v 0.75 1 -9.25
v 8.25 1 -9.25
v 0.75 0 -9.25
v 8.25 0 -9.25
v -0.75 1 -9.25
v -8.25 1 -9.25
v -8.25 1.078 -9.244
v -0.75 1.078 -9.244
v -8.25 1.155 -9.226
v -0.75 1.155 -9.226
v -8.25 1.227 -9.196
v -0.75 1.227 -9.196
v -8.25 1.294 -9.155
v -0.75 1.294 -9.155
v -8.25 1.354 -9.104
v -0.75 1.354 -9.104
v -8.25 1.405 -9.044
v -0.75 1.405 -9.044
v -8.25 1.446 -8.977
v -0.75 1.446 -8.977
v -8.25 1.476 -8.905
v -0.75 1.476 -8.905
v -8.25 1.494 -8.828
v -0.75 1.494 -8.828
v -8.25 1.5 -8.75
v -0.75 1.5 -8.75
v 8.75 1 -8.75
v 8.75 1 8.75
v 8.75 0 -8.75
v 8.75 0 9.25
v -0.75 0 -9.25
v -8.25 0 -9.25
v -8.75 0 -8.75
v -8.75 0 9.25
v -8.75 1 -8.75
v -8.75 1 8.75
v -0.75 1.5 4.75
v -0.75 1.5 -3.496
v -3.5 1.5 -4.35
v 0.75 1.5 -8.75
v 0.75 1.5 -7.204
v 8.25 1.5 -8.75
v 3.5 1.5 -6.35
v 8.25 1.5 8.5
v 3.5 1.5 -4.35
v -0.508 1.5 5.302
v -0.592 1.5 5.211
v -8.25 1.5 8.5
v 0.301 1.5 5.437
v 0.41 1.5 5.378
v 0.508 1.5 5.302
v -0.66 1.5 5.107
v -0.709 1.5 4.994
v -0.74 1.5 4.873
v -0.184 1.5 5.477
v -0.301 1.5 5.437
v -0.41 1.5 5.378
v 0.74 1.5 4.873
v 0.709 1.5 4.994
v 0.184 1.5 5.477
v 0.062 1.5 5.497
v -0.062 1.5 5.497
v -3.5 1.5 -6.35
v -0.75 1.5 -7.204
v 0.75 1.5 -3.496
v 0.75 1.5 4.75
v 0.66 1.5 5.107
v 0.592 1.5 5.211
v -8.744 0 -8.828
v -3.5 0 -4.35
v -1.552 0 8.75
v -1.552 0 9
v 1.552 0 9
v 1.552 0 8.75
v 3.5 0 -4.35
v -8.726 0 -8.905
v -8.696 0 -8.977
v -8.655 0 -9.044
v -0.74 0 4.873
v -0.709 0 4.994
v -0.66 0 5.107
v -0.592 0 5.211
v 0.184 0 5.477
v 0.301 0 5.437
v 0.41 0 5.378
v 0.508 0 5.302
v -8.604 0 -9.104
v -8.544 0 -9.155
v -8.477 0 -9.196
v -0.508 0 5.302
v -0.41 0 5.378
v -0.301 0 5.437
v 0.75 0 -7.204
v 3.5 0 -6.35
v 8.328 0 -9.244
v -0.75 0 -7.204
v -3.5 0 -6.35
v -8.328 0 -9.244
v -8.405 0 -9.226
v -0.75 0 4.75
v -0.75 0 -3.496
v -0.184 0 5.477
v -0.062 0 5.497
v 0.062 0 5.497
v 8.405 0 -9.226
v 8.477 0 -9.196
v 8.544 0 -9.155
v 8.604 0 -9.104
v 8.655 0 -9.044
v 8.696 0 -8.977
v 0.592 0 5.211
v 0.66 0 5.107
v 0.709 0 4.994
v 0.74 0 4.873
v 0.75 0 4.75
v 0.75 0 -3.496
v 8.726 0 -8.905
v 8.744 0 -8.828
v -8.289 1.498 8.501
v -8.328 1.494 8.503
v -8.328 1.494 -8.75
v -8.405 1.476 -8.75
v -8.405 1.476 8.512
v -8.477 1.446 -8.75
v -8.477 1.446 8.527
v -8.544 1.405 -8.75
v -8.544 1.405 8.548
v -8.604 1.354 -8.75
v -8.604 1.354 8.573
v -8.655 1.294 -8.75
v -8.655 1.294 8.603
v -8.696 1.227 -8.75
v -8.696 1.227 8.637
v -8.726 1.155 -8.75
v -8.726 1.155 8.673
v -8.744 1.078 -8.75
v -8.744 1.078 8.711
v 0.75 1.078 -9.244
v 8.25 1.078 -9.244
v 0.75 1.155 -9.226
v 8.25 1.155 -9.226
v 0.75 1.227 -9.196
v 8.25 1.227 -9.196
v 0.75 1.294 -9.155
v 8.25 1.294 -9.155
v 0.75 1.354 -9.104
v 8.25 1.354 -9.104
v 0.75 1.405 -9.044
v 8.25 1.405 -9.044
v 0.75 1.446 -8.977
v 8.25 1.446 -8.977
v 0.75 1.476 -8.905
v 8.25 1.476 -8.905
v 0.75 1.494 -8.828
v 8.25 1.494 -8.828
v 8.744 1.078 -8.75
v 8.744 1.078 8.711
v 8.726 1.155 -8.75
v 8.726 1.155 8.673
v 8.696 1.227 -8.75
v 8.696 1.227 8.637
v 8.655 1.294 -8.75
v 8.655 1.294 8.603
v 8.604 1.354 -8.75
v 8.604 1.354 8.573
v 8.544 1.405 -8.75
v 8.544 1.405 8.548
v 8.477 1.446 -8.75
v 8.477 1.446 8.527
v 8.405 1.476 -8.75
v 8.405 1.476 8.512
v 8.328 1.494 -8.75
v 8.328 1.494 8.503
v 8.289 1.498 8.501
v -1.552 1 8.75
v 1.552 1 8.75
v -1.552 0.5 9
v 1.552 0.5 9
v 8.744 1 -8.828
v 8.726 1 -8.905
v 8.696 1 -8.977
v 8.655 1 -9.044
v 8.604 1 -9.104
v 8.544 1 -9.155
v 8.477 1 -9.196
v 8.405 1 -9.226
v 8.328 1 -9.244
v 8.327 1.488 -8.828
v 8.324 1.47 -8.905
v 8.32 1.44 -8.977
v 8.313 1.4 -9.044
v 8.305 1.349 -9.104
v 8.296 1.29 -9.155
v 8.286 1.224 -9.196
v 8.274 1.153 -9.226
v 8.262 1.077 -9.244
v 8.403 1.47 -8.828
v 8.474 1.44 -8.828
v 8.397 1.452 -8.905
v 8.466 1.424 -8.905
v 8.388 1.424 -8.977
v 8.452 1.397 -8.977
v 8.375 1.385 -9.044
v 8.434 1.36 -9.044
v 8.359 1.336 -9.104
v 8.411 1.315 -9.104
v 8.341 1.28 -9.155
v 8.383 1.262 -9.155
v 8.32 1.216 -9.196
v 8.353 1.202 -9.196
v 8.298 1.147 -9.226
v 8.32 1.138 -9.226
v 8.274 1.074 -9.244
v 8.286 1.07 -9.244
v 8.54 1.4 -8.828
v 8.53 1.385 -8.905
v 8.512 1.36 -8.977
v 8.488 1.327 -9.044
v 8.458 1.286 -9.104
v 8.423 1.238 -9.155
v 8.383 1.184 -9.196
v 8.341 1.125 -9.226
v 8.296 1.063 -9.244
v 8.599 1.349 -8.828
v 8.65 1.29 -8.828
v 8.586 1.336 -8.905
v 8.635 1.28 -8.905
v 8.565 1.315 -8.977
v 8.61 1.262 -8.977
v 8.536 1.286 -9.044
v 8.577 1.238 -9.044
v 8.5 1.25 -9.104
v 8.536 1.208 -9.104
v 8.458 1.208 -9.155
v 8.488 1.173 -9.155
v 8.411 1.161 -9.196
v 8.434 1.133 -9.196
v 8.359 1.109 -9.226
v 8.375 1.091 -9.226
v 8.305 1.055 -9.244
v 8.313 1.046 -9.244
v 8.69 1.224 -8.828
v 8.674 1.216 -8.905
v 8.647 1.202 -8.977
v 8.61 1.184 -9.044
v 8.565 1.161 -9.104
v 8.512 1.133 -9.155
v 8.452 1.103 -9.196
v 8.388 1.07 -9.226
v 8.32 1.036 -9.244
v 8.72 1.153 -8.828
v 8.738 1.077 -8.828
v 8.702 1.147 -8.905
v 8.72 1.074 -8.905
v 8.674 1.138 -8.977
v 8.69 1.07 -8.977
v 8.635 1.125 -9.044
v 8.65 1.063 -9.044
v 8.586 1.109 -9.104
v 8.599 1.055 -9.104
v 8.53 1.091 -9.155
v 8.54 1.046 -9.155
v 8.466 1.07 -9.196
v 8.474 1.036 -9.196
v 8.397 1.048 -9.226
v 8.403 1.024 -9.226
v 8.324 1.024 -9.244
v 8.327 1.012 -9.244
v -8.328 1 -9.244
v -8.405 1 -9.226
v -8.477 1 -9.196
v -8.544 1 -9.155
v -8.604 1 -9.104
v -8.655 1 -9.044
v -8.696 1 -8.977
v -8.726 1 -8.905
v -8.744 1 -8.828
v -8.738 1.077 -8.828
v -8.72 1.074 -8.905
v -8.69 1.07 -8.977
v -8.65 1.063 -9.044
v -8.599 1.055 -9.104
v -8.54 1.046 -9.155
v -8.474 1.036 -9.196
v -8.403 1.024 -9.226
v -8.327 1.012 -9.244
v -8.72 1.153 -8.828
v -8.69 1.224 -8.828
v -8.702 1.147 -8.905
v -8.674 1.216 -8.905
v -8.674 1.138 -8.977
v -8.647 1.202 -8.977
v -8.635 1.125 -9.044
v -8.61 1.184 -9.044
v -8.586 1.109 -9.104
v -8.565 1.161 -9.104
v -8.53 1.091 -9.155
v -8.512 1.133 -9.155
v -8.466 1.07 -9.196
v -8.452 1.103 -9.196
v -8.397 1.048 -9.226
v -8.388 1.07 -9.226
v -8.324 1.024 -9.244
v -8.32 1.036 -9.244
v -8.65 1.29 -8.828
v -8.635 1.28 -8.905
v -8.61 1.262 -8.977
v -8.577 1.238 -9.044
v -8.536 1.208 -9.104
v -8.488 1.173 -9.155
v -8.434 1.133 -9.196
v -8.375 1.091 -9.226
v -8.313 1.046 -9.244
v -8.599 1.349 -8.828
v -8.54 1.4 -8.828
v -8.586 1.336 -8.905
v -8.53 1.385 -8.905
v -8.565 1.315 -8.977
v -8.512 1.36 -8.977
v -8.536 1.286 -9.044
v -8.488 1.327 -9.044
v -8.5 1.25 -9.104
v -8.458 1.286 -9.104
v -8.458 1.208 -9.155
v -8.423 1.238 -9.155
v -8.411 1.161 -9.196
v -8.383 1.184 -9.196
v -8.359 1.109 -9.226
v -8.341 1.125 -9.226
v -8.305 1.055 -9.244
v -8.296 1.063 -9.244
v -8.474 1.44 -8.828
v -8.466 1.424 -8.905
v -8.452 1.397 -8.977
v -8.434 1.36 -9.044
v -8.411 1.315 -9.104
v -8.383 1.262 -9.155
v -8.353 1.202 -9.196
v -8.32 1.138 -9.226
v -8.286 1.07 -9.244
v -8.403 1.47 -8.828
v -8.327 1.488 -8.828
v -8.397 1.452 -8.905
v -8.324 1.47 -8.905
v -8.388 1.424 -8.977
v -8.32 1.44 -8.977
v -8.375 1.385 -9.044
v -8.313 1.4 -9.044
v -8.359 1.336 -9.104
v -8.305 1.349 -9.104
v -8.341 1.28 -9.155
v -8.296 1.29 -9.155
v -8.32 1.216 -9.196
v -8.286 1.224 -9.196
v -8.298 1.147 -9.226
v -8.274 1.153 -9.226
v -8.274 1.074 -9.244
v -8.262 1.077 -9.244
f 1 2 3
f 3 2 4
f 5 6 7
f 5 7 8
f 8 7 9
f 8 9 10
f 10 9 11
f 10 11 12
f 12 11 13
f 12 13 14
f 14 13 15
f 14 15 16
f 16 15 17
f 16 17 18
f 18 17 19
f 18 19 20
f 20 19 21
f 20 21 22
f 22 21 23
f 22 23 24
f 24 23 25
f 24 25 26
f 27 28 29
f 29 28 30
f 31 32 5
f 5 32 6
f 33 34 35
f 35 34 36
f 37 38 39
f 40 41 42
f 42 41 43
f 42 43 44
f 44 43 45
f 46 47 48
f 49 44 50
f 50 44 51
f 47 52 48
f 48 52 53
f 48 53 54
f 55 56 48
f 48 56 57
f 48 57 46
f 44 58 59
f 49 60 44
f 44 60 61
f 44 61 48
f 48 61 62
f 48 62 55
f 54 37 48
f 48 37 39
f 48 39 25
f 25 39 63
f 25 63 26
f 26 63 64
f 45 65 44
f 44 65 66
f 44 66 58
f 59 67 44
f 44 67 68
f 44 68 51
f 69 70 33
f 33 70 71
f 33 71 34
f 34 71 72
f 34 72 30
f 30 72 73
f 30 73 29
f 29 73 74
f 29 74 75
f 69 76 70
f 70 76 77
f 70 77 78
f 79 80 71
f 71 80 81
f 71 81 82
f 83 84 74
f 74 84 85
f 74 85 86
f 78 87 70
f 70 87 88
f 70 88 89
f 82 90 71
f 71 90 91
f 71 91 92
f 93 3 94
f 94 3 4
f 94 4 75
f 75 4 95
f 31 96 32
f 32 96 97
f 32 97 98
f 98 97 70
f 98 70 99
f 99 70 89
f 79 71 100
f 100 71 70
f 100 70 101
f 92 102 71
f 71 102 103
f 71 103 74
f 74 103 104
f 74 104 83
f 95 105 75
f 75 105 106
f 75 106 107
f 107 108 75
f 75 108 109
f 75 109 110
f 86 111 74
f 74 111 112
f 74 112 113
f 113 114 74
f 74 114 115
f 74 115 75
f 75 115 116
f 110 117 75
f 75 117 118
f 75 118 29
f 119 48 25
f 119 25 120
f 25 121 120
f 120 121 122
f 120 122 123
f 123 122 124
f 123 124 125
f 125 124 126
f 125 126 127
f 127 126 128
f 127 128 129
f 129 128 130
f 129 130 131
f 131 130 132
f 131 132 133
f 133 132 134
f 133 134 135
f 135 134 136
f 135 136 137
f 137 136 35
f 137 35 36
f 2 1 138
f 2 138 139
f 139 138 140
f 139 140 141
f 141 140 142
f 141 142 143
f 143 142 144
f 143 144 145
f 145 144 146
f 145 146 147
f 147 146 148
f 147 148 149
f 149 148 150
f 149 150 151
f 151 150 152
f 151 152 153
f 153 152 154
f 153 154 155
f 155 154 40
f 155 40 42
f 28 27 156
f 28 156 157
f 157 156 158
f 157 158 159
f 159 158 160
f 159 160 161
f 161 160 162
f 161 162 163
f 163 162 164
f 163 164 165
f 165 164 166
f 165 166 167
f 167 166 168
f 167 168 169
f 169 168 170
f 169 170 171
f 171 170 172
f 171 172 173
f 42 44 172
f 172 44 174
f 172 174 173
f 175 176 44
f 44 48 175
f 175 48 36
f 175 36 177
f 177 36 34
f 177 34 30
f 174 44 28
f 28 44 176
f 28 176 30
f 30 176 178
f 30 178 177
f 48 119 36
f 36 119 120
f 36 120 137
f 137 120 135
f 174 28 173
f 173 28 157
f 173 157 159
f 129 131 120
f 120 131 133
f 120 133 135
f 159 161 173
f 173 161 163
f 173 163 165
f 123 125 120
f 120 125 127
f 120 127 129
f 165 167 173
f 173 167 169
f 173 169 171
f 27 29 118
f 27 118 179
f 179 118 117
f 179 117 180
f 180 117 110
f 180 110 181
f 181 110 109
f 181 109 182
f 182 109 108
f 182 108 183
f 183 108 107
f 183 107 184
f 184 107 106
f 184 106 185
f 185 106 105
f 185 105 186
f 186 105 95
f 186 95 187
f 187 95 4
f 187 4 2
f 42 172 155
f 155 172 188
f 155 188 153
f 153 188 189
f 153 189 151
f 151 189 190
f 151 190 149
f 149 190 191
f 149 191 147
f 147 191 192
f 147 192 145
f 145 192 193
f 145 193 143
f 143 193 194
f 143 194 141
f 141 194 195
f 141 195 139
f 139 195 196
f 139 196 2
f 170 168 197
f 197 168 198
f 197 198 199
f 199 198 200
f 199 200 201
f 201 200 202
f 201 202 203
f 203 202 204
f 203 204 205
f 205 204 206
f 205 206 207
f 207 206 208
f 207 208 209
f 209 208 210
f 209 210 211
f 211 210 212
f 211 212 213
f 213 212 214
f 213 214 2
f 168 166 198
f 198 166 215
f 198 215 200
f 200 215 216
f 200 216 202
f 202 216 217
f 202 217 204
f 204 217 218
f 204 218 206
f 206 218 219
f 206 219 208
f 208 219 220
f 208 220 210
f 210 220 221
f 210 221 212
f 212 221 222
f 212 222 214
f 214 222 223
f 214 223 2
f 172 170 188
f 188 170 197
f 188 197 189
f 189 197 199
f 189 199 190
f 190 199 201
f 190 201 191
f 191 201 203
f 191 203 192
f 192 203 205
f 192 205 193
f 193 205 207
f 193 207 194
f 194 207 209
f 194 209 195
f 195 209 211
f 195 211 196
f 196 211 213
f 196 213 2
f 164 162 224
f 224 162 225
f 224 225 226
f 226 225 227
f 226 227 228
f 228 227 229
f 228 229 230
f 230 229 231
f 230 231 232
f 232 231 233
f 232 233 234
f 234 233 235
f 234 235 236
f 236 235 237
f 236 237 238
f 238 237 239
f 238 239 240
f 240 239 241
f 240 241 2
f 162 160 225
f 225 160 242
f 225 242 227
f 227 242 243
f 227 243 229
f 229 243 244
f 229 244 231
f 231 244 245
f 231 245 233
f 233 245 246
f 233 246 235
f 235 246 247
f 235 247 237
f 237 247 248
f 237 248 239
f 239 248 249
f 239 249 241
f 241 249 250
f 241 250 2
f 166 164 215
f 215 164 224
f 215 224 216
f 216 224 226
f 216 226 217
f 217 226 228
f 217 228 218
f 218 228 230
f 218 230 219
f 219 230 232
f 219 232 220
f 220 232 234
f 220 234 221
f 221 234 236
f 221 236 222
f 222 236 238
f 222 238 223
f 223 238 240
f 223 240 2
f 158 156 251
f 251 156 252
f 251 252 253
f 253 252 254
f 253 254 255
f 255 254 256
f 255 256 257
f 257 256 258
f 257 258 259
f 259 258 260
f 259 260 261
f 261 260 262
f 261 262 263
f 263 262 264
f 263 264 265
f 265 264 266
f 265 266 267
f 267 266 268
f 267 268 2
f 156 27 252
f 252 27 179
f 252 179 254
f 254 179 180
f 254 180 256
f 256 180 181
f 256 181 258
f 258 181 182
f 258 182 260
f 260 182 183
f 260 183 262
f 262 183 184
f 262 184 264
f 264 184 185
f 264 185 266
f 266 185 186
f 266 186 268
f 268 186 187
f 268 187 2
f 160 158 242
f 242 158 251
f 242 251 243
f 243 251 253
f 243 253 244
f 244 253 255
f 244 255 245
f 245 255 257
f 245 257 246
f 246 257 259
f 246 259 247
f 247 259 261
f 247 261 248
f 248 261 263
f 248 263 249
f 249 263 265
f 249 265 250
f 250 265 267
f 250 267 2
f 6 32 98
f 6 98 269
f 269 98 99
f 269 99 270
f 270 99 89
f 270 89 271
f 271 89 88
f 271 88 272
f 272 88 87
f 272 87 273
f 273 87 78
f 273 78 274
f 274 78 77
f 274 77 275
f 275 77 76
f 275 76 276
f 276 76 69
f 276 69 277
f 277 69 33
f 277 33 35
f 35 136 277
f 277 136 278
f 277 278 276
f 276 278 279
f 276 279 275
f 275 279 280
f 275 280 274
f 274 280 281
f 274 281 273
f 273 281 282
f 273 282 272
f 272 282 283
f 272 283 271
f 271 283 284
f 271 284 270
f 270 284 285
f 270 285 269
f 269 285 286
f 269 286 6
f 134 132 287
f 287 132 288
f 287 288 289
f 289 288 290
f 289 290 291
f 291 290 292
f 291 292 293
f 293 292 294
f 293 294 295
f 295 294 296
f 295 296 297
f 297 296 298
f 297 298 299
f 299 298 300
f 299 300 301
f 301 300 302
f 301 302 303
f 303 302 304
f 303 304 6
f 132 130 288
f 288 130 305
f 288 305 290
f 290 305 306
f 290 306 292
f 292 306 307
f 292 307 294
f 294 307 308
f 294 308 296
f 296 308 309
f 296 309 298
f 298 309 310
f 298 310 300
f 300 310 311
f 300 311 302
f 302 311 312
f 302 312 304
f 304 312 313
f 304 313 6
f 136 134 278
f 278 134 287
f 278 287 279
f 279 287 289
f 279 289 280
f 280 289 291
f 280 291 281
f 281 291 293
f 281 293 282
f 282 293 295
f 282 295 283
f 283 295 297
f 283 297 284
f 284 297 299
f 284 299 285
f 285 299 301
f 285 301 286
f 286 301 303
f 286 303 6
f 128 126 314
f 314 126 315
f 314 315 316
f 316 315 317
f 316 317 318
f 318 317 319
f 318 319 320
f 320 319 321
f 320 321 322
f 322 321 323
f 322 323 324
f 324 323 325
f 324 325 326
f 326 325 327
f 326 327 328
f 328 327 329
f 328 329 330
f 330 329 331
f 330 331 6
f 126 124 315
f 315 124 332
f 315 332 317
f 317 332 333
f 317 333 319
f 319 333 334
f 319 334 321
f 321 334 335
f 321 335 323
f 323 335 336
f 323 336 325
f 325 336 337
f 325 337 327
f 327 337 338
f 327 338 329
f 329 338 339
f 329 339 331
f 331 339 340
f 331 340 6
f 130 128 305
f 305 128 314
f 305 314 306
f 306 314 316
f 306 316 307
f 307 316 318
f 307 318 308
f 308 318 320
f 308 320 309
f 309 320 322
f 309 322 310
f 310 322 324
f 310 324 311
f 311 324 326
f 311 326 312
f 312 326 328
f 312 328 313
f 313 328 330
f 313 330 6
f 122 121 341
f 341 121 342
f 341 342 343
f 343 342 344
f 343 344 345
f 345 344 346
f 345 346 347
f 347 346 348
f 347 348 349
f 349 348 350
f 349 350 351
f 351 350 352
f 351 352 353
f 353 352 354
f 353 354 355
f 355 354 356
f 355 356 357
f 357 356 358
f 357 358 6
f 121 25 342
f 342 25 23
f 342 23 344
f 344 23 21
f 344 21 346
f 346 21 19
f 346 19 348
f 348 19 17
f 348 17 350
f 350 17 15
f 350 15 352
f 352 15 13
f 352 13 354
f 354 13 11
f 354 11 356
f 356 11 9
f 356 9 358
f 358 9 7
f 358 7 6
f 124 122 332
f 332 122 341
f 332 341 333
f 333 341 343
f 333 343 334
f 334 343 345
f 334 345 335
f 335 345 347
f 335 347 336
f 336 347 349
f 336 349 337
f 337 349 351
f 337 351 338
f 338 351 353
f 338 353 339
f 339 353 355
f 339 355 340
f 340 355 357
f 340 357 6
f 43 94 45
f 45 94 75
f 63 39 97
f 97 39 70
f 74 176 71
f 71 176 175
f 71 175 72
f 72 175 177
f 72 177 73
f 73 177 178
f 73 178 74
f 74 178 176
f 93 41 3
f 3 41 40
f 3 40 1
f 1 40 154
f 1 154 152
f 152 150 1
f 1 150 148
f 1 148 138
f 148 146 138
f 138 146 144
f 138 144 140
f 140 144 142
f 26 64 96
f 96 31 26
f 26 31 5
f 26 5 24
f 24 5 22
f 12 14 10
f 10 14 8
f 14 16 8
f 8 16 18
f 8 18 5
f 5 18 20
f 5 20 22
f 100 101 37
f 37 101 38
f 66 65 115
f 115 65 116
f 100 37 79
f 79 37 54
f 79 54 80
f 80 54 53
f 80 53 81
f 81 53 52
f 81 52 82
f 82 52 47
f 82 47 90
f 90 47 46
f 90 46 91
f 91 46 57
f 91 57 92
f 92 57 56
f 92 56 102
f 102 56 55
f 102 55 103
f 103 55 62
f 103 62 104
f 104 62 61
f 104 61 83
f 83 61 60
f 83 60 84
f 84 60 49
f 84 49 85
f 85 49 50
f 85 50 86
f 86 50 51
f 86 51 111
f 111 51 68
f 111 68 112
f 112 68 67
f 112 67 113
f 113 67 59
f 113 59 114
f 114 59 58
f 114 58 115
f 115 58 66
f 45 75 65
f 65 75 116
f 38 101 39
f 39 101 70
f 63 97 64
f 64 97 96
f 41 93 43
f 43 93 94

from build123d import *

# Parameters (mm, degrees)
SKIZZE1_W                       = 17.5
SKIZZE1_H                       = 18.5
AUFSATZ_LINEAR_AUSTRAGEN1_DEPTH = 1.5
VERRUNDUNG1_R                   = 0.5
SCHNITT_LINEAR_AUSTRAGEN1_REACH = 21.851
VERRUNDUNG2_R                   = 0.5
SCHL_SSELLOCH_DEPTH             = 1.5
SKIZZE6_W                       = 3.103008178
SKIZZE6_H                       = 0.25
GRIFF_DEPTH                     = 1.5
LANGLOCH_ANTENNE_START          = -1.5
LANGLOCH_ANTENNE_DEPTH          = 1.5
SCHNITT_LINEAR_AUSTRAGEN2_DEPTH = 1.5


with BuildPart() as part:
    # Skizze1 → Aufsatz-Linear austragen1 (new body)
    with BuildSketch(Plane(origin=(0, 0, 0), x_dir=(1, 0, 0), z_dir=(0, 1, 0))):
        Rectangle(SKIZZE1_W, SKIZZE1_H)
    extrude(amount=AUFSATZ_LINEAR_AUSTRAGEN1_DEPTH)

    # Verrundung1
    verrundung1_edges = [part.edges().sort_by_distance(p)[0] for p in [
        (-8.75, 1.5, 0),
        (8.75, 1.5, 0),
        (0, 1.5, -9.25),
    ]]
    fillet(verrundung1_edges, radius=VERRUNDUNG1_R)

    # Schnitt-Linear austragen1: up to this face of the body (flat: up to its plane)
    schnitt_linear_austragen1_end = Plane(part.part.faces().sort_by_distance((8.75, 0.5, 0))[0])
    # Skizze2 → Schnitt-Linear austragen1 (cut, up to the picked face)
    with BuildSketch(Plane.ZY.offset(8.75), mode=Mode.PRIVATE) as schnitt_linear_austragen1_sk1:
        Polygon((9.25, 0), (8.5, 1.5), (9.25, 1.5), align=None)
    schnitt_linear_austragen1_tool1 = split(extrude(schnitt_linear_austragen1_sk1.sketch, amount=-SCHNITT_LINEAR_AUSTRAGEN1_REACH, mode=Mode.PRIVATE), bisect_by=schnitt_linear_austragen1_end, keep=Keep.BOTH, mode=Mode.PRIVATE)
    add(schnitt_linear_austragen1_tool1.solids().sort_by(Axis((-8.75, 1, 9), (1, 0, 0)))[0], mode=Mode.SUBTRACT)

    # Verrundung2
    # the kernel refuses this fillet: 0.5 mm, written as the material it takes off along each edge
    with BuildSketch(Plane(origin=(-8.25, 1, -8.75), x_dir=(-1, 0, 0), z_dir=(0, 0, -1))) as verrundung2_piece_1_section:
        Polygon((0, 0), (VERRUNDUNG2_R, 0), (VERRUNDUNG2_R, VERRUNDUNG2_R), (0, VERRUNDUNG2_R), align=None)
    verrundung2_piece_1 = extrude(amount=VERRUNDUNG2_R, mode=Mode.PRIVATE)
    verrundung2_piece_1 = verrundung2_piece_1 - Plane(origin=(-8.25, 1, -8.75), x_dir=(0.7071067811865475, -0.7071067811865475, 0), z_dir=(0, 0, -1)) * Sphere(VERRUNDUNG2_R, mode=Mode.PRIVATE)
    add(verrundung2_piece_1, mode=Mode.SUBTRACT)
    with BuildSketch(Plane(origin=(8.25, 1, -8.75), x_dir=(0, 0, -1), z_dir=(1, 0, 0))) as verrundung2_piece_2_section:
        Polygon((0, 0), (VERRUNDUNG2_R, 0), (VERRUNDUNG2_R, VERRUNDUNG2_R), (0, VERRUNDUNG2_R), align=None)
    verrundung2_piece_2 = extrude(amount=VERRUNDUNG2_R, mode=Mode.PRIVATE)
    verrundung2_piece_2 = verrundung2_piece_2 - Plane(origin=(8.25, 1, -8.75), x_dir=(0, -0.7071067811865475, 0.7071067811865475), z_dir=(1, 0, 0)) * Sphere(VERRUNDUNG2_R, mode=Mode.PRIVATE)
    add(verrundung2_piece_2, mode=Mode.SUBTRACT)
    with BuildSketch(Plane(origin=(8.75, -1.25, -9.25), x_dir=(0, 0, 1), z_dir=(0, 1, 0)), Plane(origin=(-8.75, -1.25, -9.25), x_dir=(1, 0, 0), z_dir=(0, 1, 0))) as verrundung2_piece_3:
        with BuildLine():
            CenterArc((VERRUNDUNG2_R, -VERRUNDUNG2_R), VERRUNDUNG2_R, 90, 90)
            Line((0, -VERRUNDUNG2_R), (0, 0))
            Line((0, 0), (VERRUNDUNG2_R, 0))
        make_face()
    extrude(amount=2.25, mode=Mode.SUBTRACT)

    # Skizze5 → Schlüsselloch (cut)
    with BuildSketch(Plane(origin=(0, 1.5, 0), x_dir=(1, 0, 0), z_dir=(0, 1, 0))):
        with BuildLine():
            Line((-3.5, 6.35), (-3.5, 4.35))
            Line((-3.5, 4.35), (-1.732050808, 4.35))
            ThreePointArc((-1.732050808, 4.35), (-2, 5.35), (-1.732050808, 6.35))
            Line((-1.732050808, 6.35), (-3.5, 6.35))
        make_face()
        with BuildLine():
            ThreePointArc((1.732050808, 6.35), (0, 7.35), (-1.732050808, 6.35))
            Line((-1.732050808, 6.35), (1.732050808, 6.35))
        make_face()
        with BuildLine():
            ThreePointArc((-1.732050808, 6.35), (-2, 5.35), (-1.732050808, 4.35))
            Line((-1.732050808, 4.35), (1.732050808, 4.35))
            ThreePointArc((1.732050808, 4.35), (1.931851653, 4.83236191), (2, 5.35))
            ThreePointArc((2, 5.35), (1.931851653, 5.86763809), (1.732050808, 6.35))
            Line((1.732050808, 6.35), (-1.732050808, 6.35))
        make_face()
        with BuildLine():
            Line((1.732050808, 4.35), (-1.732050808, 4.35))
            ThreePointArc((-1.732050808, 4.35), (0, 3.35), (1.732050808, 4.35))
        make_face()
        with BuildLine():
            ThreePointArc((2, 5.35), (1.931851653, 4.83236191), (1.732050808, 4.35))
            Line((1.732050808, 4.35), (3.5, 4.35))
            Line((3.5, 4.35), (3.5, 6.35))
            Line((3.5, 6.35), (1.732050808, 6.35))
            ThreePointArc((1.732050808, 6.35), (1.931851653, 5.86763809), (2, 5.35))
        make_face()
    extrude(amount=-SCHL_SSELLOCH_DEPTH, mode=Mode.SUBTRACT)

    # Skizze6 → Griff (cut)
    with BuildSketch(Plane(origin=(0, 1.5, 0), x_dir=(1, 0, 0), z_dir=(0, 1, 0))):
        with Locations((0, -8.875)):
            Rectangle(SKIZZE6_W, SKIZZE6_H)
    extrude(amount=-GRIFF_DEPTH, mode=Mode.SUBTRACT)

    # Skizze7 → Langloch_Antenne (cut)
    with BuildSketch(Plane(origin=(0, 1.5, 0), x_dir=(1, 0, 0), z_dir=(0, 1, 0)).offset(LANGLOCH_ANTENNE_START)):
        with BuildLine():
            Line((0.75, 9.25), (0.75, -4.75))
            ThreePointArc((0.75, -4.75), (0, -5.5), (-0.75, -4.75))
            Line((-0.75, -4.75), (-0.75, 9.25))
            ThreePointArc((-0.75, 9.25), (0, 10), (0.75, 9.25))
        make_face()
    extrude(amount=LANGLOCH_ANTENNE_DEPTH, mode=Mode.SUBTRACT)

    # Skizze8 → Schnitt-Linear austragen2 (cut)
    with BuildSketch(Plane(origin=(0, 1.5, 0), x_dir=(1, 0, 0), z_dir=(0, 1, 0))):
        Polygon((3.5, 4.35), (0.75, 3.495950378), (-0.75, 3.495950378), (-3.5, 4.35), (-3.5, 6.35), (-0.75, 7.204049622), (0.75, 7.204049622), (3.5, 6.35), align=None)
    extrude(amount=-SCHNITT_LINEAR_AUSTRAGEN2_DEPTH, mode=Mode.SUBTRACT)


solid = part.part
